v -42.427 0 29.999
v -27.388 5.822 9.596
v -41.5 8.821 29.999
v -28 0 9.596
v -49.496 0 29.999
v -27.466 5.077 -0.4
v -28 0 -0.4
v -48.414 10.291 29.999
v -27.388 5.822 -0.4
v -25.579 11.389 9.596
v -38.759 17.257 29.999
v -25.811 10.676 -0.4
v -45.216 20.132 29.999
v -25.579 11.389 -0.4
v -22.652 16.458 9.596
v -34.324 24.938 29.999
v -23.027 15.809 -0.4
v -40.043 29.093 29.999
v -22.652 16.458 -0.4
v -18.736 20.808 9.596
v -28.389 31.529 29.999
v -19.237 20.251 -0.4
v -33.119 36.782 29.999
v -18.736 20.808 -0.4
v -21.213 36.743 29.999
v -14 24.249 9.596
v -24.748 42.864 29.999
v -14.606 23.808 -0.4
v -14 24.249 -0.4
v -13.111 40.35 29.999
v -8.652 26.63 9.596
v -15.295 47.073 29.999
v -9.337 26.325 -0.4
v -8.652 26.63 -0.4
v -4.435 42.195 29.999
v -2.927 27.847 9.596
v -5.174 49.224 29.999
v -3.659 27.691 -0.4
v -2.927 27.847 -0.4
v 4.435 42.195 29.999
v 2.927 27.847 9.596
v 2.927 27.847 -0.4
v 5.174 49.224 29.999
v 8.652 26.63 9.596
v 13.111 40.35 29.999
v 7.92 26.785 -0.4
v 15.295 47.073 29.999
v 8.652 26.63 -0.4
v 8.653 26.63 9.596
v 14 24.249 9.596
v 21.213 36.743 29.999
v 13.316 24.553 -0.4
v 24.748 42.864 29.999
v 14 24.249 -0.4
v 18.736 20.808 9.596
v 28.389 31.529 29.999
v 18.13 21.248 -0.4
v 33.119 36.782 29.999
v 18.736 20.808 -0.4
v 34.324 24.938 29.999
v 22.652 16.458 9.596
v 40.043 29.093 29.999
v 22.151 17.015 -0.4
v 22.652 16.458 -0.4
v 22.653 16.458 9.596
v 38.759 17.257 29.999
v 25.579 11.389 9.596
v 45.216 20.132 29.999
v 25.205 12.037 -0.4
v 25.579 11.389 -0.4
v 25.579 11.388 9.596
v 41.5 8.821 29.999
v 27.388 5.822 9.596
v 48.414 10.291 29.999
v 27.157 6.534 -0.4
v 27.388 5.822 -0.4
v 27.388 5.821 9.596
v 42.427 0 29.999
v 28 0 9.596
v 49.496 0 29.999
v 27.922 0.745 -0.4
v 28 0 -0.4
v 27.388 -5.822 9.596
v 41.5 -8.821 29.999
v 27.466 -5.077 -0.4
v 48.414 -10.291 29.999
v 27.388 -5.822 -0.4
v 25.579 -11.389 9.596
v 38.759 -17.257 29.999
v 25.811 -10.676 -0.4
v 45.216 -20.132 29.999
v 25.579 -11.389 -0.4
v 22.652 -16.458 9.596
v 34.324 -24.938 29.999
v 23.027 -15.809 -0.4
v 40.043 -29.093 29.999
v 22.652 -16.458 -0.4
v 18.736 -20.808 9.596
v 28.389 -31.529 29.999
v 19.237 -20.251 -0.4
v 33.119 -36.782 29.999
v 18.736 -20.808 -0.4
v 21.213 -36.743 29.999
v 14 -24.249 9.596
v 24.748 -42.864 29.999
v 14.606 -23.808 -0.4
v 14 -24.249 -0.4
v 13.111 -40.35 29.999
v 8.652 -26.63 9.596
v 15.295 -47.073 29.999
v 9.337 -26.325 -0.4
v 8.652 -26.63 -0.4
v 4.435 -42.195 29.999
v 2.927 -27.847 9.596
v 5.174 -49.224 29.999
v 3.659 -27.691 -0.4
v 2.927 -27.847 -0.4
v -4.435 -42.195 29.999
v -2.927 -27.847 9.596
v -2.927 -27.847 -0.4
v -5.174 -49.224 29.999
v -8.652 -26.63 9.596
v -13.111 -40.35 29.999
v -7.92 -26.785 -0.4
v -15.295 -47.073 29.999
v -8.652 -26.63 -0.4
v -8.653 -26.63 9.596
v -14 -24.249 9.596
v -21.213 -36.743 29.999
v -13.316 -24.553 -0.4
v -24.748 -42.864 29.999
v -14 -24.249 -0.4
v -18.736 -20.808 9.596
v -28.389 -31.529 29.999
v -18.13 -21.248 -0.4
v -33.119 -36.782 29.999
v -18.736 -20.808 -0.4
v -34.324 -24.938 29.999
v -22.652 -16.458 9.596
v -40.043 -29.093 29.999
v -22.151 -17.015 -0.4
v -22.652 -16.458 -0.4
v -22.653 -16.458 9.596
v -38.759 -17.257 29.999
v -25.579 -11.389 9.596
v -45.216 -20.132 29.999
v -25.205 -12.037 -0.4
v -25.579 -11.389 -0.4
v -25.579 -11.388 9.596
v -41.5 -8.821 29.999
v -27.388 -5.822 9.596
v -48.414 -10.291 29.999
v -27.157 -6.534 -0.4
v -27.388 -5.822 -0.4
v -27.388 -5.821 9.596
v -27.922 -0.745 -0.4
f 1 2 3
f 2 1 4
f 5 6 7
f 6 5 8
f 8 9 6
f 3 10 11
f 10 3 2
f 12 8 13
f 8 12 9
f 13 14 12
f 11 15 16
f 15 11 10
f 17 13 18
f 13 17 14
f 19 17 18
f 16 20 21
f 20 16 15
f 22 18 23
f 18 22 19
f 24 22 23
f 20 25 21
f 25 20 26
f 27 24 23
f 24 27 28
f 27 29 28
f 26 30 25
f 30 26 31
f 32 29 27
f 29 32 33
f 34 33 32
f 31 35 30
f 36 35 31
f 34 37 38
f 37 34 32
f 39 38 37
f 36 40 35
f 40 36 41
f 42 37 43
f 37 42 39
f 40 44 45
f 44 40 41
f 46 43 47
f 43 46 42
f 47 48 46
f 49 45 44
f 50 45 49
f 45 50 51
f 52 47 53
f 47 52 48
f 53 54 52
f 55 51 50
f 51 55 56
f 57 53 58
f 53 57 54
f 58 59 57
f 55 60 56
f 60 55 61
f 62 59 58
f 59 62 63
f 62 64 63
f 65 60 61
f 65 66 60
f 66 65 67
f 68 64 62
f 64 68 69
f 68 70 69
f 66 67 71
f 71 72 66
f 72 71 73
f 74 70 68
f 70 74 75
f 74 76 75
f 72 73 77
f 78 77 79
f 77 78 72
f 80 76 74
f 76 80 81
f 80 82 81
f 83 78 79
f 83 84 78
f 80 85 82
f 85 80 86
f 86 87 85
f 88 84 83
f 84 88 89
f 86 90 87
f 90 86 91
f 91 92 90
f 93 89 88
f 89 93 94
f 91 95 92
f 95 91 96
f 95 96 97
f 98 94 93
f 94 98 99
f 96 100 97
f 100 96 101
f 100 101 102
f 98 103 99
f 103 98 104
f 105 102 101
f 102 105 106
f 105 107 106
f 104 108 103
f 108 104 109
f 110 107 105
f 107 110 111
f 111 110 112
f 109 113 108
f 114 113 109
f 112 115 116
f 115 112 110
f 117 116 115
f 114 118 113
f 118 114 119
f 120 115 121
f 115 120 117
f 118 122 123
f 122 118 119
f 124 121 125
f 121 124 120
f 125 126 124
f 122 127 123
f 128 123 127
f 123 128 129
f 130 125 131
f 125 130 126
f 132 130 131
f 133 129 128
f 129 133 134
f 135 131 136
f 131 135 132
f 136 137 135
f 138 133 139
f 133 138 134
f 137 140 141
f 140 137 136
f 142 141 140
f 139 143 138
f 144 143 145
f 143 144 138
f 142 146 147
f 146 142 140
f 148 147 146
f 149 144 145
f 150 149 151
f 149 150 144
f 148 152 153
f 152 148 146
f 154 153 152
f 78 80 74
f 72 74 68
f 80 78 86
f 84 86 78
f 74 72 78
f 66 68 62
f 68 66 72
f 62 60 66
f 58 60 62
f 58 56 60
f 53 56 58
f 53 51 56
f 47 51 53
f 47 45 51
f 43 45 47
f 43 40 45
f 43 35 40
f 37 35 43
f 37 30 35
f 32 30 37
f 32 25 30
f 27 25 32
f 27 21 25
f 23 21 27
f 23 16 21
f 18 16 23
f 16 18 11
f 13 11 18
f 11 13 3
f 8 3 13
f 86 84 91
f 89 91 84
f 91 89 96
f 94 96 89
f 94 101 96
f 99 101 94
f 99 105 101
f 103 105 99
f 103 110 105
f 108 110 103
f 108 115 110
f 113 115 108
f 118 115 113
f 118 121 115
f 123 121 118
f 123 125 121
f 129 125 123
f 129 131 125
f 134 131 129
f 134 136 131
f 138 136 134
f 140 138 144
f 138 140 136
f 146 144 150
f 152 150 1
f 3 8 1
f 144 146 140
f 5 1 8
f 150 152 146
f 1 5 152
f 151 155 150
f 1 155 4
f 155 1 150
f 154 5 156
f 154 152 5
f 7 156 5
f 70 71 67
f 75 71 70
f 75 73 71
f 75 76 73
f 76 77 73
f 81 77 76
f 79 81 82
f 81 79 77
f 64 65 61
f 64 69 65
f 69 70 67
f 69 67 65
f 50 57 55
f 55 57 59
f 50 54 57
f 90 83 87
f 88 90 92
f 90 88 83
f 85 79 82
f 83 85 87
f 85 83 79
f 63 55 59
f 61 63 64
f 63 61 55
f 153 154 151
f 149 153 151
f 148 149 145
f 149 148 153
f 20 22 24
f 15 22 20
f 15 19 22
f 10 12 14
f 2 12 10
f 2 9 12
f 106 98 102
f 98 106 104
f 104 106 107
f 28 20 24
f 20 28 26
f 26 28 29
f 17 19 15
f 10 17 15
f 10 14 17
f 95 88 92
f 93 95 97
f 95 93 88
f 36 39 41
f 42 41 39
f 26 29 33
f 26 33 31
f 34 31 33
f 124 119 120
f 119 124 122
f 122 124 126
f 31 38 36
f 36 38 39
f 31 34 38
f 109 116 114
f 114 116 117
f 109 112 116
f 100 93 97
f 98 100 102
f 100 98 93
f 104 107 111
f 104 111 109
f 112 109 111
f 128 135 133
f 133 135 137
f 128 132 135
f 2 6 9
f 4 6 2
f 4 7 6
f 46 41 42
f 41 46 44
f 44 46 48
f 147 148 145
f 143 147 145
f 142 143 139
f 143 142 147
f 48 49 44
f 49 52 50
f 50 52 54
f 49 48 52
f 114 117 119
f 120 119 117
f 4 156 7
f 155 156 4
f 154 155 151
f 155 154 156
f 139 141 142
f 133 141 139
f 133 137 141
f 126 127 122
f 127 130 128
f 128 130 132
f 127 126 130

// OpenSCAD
// portafilter dimensions
portafilter_diameter_mm = 57.81;
portafilter_rim_thickness_mm = 4.26;
portafilter_lip_height_mm = 3.42;

cutoff_height_mm = 20;
funnel_height_mm = cutoff_height_mm + 40;
funnel_thickness_mm = 10;
funnel_steepness_degrees = 45;
funnel_diameter_mm = 56;
slant_angle_degrees = funnel_steepness_degrees > 90 ? 0 : 90 - funnel_steepness_degrees;
funnel_length_mm = funnel_height_mm / sin(funnel_steepness_degrees); // hypotenuse also assumes angle is 45

module funnel() {
    translate([0,0,-cutoff_height_mm-funnel_thickness_mm])
        difference() {
            rotate_extrude(angle=360) {
                // need to offset by a slight amount as the rotation is causing
                // the resulting object to be non-manifold
                // source: https://forum.openscad.org/Preview-OK-Render-gets-only-half-tp33306p33315.html
                offset(delta=-0.001) 
                    rotate(a = [funnel_steepness_degrees,funnel_steepness_degrees,0]) {
                        square([funnel_thickness_mm,funnel_length_mm]);
                    }
            }
            translate([0,0,cutoff_height_mm/2-0.01]) // translate by cutoff_height/2 to bring cube bottom to the origin as the cube is centered
                cube([cutoff_height_mm*10, cutoff_height_mm*10, cutoff_height_mm], center=true);
            cylinder(h = funnel_height_mm, d = funnel_diameter_mm);
        }
}

funnel();
